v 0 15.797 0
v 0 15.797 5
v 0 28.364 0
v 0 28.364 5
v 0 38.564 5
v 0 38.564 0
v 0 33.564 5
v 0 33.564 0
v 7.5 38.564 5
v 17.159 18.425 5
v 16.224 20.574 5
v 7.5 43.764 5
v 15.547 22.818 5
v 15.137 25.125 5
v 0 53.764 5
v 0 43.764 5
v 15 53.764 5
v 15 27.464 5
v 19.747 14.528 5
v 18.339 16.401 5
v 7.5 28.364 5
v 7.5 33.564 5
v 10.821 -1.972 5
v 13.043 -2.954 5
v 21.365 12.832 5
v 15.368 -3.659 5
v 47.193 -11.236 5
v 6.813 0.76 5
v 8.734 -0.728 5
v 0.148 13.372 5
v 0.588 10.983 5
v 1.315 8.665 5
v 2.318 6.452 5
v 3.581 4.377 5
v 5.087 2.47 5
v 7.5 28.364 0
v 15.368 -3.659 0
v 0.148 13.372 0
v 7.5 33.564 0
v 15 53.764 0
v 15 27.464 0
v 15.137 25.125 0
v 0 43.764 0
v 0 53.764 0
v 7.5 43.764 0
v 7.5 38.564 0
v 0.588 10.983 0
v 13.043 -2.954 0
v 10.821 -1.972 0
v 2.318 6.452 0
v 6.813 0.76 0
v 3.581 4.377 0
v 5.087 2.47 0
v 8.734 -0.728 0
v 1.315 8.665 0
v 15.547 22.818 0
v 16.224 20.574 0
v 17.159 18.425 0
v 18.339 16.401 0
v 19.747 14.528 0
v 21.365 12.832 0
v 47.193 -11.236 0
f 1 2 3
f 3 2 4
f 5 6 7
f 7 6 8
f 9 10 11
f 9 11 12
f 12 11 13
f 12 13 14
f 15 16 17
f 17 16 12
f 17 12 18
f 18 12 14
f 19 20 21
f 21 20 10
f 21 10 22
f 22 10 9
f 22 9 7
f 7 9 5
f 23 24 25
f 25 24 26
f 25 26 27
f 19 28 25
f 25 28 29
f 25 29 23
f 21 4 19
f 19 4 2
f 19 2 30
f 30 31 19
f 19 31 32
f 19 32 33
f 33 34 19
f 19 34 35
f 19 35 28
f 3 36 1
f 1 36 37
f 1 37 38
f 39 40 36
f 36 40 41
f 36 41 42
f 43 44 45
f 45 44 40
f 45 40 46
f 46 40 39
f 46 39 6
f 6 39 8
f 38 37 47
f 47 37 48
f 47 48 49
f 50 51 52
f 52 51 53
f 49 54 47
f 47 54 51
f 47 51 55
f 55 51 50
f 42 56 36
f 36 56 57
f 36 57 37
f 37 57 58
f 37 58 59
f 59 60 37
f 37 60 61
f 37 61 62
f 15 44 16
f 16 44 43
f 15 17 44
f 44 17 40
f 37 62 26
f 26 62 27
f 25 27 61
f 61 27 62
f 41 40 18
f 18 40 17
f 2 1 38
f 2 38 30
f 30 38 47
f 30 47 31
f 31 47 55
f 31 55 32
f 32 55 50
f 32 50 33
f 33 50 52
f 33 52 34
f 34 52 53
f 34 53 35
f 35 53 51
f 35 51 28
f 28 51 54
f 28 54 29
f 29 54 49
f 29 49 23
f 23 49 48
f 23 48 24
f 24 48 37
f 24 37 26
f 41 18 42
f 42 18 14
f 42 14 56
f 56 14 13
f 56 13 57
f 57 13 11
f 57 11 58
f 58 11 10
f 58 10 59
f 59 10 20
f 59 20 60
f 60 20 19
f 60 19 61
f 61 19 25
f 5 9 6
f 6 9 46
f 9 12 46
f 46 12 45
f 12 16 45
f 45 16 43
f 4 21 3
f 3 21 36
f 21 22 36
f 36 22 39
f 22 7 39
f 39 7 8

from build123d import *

# Parameters (mm, degrees)
BOSS_EXTRUDE1_DEPTH = 5
FILLET1_R           = 20
FILLET2_R           = 20
SKETCH3_W           = 7.5
SKETCH3_H           = 5.2
CUT_EXTRUDE2_DEPTH  = 5


with BuildPart() as part:
    # Sketch1 → Boss-Extrude1 (new body)
    with BuildSketch(Plane.XY):
        Polygon((0, 53.763883017), (0, 0), (47.193256778, -11.236116983), (15, 18.763883017), (15, 53.763883017), align=None)
    extrude(amount=BOSS_EXTRUDE1_DEPTH)

    # Fillet1
    fillet1_edges = [part.edges().sort_by_distance(p)[0] for p in [
        (0, 0, 2.5),
    ]]
    fillet(fillet1_edges, radius=FILLET1_R)

    # Fillet2
    fillet2_edges = [part.edges().sort_by_distance(p)[0] for p in [
        (15, 18.763883017, 2.5),
    ]]
    fillet(fillet2_edges, radius=FILLET2_R)

    # Sketch3 → Cut-Extrude2 (cut)
    with BuildSketch(Plane.XY):
        with Locations((3.75, 41.163883017)):
            Rectangle(SKETCH3_W, SKETCH3_H)
        with Locations((3.75, 30.963883017)):
            Rectangle(SKETCH3_W, SKETCH3_H)
    extrude(amount=CUT_EXTRUDE2_DEPTH, mode=Mode.SUBTRACT)


solid = part.part
